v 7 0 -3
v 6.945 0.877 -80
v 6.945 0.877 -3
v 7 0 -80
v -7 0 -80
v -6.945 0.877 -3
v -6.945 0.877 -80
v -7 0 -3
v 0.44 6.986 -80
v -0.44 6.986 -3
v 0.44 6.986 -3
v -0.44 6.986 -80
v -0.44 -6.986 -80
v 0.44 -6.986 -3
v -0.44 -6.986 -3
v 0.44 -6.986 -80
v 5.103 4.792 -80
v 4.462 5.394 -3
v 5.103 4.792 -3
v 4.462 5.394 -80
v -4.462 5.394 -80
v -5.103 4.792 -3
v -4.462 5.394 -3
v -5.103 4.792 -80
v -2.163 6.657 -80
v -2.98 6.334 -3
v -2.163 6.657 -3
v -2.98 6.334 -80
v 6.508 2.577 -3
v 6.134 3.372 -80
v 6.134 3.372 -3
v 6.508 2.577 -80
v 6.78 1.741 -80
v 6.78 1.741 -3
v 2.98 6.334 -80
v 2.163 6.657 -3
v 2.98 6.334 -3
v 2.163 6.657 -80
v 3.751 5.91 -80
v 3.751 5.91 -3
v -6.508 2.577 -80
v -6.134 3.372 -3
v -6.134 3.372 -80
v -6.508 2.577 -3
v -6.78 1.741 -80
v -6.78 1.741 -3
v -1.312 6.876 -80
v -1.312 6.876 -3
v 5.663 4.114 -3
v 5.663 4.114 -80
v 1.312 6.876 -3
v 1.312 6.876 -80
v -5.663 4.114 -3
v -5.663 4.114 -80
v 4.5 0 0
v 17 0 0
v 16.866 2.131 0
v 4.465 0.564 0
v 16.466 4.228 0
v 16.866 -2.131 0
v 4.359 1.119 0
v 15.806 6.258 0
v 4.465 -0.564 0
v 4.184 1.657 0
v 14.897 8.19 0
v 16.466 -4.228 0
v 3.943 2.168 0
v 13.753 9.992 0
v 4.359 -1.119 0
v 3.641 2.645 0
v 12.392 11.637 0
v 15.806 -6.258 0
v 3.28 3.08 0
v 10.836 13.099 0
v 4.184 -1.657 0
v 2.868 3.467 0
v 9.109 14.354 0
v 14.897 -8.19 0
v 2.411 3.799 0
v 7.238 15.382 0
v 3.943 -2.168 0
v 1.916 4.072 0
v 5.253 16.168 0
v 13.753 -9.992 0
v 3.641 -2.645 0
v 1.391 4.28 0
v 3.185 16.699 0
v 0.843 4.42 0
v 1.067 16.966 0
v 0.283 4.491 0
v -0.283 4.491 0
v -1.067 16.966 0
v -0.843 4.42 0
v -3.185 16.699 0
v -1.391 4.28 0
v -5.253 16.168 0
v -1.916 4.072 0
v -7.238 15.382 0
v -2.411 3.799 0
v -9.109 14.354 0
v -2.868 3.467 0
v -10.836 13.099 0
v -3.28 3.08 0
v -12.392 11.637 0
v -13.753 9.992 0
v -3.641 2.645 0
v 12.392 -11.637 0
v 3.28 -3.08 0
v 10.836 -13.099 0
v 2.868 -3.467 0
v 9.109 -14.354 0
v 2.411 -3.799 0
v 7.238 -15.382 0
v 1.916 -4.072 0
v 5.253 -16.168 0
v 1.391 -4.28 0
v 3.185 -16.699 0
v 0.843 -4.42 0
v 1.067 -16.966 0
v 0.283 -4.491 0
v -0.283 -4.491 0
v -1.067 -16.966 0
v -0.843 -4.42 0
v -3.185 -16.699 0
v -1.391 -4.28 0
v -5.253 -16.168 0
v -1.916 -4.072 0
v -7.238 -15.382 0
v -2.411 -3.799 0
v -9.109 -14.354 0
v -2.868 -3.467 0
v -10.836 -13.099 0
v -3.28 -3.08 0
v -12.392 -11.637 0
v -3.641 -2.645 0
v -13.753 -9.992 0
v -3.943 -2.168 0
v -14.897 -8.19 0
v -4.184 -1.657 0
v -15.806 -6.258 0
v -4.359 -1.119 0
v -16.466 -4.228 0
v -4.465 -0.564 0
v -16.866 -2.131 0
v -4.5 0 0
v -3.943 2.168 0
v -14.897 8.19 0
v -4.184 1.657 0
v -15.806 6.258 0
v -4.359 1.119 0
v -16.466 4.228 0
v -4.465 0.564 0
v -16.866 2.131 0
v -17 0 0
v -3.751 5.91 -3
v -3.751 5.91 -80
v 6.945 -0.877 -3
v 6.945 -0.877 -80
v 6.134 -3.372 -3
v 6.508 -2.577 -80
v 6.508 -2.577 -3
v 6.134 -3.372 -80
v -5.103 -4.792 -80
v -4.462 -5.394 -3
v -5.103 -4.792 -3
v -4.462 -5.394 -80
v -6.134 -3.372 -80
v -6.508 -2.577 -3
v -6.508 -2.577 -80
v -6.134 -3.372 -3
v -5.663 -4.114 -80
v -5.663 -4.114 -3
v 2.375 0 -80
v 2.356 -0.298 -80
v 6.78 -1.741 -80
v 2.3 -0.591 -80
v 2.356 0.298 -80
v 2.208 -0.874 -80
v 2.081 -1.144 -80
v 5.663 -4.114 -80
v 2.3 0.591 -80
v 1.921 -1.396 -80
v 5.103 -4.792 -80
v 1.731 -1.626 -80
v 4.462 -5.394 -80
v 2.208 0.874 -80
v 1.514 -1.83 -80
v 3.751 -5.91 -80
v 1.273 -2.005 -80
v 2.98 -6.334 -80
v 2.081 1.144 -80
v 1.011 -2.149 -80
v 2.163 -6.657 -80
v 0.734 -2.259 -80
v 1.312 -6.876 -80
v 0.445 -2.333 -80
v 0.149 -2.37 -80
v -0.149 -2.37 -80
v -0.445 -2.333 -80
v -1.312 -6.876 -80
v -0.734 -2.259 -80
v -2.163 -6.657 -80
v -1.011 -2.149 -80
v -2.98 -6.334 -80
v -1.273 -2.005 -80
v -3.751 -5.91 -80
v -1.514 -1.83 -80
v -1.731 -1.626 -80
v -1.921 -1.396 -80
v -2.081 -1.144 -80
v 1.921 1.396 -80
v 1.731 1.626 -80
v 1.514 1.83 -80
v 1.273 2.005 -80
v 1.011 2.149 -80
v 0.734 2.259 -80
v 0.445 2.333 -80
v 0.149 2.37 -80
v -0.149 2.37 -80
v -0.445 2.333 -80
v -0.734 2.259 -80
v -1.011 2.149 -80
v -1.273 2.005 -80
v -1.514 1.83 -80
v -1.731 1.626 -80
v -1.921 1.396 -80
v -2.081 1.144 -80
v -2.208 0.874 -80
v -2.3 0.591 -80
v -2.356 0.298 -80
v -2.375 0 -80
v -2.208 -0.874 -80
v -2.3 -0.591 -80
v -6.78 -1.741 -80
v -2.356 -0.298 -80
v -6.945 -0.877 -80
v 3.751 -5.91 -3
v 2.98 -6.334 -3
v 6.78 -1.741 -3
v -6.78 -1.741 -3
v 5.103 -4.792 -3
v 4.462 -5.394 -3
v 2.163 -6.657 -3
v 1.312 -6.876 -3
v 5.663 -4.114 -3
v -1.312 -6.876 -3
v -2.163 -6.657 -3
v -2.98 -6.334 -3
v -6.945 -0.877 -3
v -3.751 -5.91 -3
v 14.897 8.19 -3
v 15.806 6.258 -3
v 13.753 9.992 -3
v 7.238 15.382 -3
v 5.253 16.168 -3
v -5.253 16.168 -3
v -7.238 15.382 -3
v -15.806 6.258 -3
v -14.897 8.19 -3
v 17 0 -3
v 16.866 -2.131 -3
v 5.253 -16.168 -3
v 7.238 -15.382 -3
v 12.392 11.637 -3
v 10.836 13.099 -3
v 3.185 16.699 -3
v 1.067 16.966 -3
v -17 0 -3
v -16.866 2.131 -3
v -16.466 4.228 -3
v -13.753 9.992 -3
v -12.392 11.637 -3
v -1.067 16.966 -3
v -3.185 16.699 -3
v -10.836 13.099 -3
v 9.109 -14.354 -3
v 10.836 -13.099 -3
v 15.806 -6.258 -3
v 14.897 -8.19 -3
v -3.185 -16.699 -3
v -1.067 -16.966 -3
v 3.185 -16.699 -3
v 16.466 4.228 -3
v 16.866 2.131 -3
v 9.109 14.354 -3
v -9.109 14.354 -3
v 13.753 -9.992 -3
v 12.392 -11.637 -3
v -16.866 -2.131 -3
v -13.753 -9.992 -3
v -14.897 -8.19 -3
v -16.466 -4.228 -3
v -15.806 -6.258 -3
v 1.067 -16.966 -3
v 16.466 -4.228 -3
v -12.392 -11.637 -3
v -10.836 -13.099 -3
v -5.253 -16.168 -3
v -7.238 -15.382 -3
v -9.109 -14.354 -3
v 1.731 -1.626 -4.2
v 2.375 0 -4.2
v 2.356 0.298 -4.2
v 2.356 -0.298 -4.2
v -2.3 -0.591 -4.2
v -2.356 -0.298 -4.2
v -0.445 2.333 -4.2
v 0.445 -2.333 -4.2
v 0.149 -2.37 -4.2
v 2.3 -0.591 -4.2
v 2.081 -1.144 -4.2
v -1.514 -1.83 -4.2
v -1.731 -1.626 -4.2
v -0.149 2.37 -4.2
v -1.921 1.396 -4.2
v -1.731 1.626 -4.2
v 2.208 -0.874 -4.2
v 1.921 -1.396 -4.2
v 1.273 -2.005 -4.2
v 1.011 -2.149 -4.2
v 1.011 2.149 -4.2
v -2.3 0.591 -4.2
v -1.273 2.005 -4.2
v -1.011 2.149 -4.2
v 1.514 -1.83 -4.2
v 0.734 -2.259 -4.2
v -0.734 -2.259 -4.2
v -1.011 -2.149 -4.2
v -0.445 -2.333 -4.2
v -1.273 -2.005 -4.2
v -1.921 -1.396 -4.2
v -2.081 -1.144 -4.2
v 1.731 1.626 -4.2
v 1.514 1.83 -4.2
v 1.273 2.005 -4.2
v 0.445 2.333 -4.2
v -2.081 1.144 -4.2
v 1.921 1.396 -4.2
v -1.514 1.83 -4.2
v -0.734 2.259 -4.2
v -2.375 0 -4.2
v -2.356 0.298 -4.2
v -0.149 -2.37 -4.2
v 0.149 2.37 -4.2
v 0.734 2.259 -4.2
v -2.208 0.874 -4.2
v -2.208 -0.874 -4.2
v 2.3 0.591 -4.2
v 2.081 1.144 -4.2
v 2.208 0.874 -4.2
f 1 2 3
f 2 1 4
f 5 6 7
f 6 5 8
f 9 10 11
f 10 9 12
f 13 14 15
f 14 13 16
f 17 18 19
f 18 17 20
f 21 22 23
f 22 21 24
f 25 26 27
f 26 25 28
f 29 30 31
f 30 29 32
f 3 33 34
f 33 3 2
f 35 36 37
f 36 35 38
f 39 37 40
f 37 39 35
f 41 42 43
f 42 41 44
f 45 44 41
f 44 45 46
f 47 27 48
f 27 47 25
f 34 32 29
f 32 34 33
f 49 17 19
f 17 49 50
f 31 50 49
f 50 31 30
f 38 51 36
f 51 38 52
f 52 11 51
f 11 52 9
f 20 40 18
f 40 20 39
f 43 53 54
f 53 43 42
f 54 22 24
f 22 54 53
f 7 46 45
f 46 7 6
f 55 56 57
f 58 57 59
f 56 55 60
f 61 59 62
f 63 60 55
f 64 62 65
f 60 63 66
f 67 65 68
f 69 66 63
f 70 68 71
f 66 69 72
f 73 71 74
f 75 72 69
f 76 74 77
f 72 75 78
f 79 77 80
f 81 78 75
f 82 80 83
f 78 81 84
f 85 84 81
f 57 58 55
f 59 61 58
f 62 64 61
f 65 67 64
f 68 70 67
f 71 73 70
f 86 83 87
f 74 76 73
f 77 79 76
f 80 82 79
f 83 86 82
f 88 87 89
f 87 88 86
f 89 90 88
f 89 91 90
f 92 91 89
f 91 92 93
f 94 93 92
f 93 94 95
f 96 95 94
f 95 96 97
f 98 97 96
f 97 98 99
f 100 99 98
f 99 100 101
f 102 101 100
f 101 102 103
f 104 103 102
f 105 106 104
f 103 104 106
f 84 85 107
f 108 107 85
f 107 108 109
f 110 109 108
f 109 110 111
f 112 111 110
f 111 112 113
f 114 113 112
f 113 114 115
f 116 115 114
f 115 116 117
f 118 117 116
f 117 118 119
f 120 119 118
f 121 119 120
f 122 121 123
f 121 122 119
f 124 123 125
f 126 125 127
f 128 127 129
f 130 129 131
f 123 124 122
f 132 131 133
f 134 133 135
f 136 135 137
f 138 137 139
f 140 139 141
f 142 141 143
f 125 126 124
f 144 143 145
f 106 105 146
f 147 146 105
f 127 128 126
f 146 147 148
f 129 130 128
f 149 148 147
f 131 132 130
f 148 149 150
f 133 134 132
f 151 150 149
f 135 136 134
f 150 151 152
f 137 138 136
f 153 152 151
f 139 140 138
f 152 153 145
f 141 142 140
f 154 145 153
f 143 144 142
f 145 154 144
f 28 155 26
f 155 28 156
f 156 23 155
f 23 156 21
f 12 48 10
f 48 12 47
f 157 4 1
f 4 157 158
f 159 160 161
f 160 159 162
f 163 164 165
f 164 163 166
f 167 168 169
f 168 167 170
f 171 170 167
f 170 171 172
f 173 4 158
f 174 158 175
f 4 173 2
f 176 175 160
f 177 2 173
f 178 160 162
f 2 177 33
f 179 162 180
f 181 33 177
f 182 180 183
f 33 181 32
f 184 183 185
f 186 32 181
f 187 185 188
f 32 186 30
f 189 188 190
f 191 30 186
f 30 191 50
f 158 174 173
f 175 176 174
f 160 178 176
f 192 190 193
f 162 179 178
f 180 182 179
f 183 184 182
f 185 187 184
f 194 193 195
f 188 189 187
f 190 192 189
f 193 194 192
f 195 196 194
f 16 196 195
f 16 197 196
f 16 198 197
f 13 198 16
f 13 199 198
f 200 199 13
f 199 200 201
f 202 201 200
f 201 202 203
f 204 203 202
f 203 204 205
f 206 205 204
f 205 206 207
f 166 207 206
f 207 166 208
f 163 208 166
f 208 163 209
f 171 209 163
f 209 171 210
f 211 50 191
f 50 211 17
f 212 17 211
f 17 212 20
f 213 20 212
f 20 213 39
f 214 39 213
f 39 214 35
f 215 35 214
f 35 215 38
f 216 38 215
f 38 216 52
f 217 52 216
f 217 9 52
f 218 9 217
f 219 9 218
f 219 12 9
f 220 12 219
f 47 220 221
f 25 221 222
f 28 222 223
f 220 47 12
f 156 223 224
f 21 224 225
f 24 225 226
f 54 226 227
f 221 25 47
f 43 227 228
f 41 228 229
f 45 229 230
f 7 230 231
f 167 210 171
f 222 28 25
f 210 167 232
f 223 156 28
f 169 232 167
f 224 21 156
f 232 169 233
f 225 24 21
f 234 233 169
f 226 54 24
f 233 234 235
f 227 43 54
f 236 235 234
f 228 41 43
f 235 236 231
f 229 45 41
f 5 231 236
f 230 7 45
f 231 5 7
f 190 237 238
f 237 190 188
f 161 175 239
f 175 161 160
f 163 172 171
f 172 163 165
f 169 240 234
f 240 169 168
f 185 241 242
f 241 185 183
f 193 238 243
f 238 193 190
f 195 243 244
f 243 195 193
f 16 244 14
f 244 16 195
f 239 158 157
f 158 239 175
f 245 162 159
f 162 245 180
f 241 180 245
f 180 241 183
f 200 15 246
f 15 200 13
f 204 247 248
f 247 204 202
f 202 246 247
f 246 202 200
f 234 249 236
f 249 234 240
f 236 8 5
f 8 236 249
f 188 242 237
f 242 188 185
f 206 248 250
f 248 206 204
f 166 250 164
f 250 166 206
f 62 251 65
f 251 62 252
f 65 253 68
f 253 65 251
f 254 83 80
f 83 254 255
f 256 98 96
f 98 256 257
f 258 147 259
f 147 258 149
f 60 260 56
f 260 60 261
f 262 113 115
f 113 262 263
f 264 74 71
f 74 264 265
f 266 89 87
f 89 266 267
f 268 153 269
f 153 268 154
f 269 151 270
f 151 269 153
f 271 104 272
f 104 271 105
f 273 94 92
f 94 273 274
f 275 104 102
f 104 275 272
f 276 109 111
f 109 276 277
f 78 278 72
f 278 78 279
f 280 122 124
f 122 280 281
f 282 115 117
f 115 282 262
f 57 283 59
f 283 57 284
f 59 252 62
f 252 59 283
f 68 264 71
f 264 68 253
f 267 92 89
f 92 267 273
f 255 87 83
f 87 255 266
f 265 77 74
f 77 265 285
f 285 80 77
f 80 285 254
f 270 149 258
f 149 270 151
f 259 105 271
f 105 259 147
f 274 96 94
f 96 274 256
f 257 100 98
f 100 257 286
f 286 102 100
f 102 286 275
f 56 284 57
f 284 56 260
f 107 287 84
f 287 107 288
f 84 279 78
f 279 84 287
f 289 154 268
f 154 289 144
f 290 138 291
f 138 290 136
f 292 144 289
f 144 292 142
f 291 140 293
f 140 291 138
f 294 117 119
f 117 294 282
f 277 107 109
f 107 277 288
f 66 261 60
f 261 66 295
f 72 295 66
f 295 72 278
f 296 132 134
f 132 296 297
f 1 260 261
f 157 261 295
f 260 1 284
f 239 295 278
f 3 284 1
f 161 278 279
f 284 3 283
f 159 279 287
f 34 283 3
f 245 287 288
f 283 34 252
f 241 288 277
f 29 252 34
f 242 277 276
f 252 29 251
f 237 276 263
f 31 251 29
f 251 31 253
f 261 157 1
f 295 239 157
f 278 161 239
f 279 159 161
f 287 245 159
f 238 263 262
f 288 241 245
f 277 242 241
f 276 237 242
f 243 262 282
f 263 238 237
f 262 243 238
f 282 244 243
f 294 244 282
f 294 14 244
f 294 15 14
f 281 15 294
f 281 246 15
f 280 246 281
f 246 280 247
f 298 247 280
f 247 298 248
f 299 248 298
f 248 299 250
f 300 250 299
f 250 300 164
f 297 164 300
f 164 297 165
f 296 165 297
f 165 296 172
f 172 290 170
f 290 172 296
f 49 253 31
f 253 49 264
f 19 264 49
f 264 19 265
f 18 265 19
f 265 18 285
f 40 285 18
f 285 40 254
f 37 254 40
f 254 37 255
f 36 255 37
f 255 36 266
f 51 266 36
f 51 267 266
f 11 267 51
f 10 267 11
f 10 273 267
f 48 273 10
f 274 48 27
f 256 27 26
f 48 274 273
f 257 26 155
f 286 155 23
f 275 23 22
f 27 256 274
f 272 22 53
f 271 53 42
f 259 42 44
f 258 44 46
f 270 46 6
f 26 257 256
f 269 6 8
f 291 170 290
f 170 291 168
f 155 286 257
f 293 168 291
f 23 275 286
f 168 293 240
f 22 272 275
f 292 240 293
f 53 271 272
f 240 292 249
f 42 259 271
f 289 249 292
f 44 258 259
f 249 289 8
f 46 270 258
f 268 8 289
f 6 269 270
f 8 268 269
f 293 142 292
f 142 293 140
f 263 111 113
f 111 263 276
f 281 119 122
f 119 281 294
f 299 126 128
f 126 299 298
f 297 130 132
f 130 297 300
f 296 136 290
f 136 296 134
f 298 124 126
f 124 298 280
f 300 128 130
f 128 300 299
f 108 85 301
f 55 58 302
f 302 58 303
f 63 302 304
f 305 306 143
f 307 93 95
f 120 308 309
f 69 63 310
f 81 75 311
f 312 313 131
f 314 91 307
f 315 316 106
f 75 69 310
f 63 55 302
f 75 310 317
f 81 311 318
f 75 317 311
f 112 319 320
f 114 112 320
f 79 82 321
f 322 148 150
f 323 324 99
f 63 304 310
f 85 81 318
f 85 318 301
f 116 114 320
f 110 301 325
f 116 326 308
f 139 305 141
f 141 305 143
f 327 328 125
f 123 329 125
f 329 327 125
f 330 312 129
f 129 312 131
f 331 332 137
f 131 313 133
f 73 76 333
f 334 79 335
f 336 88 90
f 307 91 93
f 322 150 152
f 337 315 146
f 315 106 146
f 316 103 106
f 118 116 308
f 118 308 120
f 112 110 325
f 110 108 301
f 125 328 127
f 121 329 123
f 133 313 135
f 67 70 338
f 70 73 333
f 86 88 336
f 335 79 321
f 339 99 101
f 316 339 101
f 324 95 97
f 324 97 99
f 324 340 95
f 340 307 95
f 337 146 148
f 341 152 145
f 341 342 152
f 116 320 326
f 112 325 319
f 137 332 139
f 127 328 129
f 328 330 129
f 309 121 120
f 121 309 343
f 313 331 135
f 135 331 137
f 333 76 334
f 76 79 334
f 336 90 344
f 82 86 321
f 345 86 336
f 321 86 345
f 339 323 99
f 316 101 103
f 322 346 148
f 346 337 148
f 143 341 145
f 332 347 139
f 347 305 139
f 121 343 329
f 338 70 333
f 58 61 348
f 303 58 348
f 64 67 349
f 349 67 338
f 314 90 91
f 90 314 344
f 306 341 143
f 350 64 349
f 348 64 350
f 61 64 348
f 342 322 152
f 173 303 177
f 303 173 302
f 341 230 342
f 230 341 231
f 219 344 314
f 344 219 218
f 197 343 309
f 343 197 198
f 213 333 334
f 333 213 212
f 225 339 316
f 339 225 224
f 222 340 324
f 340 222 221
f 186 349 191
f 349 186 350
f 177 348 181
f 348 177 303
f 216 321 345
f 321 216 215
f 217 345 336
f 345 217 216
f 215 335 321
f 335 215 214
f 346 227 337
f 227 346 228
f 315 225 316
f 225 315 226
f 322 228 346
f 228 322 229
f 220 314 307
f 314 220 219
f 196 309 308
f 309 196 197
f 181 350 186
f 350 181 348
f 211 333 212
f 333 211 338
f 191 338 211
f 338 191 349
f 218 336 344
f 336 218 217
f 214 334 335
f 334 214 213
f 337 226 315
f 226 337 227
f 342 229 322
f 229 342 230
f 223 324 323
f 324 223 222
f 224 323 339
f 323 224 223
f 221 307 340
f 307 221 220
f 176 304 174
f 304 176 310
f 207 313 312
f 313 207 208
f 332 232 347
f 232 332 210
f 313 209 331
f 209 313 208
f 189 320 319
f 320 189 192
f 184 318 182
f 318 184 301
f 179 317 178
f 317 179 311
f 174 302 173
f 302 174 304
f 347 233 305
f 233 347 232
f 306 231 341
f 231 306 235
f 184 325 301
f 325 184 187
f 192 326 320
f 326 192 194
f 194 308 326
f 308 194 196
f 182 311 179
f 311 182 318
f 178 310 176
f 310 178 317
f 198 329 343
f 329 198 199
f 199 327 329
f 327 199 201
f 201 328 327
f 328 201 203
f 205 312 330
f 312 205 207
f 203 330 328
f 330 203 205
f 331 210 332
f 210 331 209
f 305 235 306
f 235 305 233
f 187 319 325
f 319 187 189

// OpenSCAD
$fn = 50;


difference() {
	union() {
		translate(v = [0, 0, -80.0000000000]) {
			cylinder(h = 80, r = 7.0000000000);
		}
		translate(v = [0, 0, -3.0000000000]) {
			cylinder(h = 3, r = 17.0000000000);
		}
	}
	union() {
		translate(v = [0, 0, 0]) {
			rotate(a = [0, 0, 0]) {
				difference() {
					union() {
						#translate(v = [0, 0, -80.0000000000]) {
							cylinder(h = 80, r = 2.2500000000);
						}
						#translate(v = [0, 0, -4.2000000000]) {
							cylinder(h = 4.2000000000, r = 7.0000000000, r1 = 2.3750000000, r2 = 4.5000000000);
						}
						#translate(v = [0, 0, -80.0000000000]) {
							cylinder(h = 80, r = 2.3750000000);
						}
						#translate(v = [0, 0, -80.0000000000]) {
							cylinder(h = 80, r = 2.2500000000);
						}
					}
					union();
				}
			}
		}
	}
}
